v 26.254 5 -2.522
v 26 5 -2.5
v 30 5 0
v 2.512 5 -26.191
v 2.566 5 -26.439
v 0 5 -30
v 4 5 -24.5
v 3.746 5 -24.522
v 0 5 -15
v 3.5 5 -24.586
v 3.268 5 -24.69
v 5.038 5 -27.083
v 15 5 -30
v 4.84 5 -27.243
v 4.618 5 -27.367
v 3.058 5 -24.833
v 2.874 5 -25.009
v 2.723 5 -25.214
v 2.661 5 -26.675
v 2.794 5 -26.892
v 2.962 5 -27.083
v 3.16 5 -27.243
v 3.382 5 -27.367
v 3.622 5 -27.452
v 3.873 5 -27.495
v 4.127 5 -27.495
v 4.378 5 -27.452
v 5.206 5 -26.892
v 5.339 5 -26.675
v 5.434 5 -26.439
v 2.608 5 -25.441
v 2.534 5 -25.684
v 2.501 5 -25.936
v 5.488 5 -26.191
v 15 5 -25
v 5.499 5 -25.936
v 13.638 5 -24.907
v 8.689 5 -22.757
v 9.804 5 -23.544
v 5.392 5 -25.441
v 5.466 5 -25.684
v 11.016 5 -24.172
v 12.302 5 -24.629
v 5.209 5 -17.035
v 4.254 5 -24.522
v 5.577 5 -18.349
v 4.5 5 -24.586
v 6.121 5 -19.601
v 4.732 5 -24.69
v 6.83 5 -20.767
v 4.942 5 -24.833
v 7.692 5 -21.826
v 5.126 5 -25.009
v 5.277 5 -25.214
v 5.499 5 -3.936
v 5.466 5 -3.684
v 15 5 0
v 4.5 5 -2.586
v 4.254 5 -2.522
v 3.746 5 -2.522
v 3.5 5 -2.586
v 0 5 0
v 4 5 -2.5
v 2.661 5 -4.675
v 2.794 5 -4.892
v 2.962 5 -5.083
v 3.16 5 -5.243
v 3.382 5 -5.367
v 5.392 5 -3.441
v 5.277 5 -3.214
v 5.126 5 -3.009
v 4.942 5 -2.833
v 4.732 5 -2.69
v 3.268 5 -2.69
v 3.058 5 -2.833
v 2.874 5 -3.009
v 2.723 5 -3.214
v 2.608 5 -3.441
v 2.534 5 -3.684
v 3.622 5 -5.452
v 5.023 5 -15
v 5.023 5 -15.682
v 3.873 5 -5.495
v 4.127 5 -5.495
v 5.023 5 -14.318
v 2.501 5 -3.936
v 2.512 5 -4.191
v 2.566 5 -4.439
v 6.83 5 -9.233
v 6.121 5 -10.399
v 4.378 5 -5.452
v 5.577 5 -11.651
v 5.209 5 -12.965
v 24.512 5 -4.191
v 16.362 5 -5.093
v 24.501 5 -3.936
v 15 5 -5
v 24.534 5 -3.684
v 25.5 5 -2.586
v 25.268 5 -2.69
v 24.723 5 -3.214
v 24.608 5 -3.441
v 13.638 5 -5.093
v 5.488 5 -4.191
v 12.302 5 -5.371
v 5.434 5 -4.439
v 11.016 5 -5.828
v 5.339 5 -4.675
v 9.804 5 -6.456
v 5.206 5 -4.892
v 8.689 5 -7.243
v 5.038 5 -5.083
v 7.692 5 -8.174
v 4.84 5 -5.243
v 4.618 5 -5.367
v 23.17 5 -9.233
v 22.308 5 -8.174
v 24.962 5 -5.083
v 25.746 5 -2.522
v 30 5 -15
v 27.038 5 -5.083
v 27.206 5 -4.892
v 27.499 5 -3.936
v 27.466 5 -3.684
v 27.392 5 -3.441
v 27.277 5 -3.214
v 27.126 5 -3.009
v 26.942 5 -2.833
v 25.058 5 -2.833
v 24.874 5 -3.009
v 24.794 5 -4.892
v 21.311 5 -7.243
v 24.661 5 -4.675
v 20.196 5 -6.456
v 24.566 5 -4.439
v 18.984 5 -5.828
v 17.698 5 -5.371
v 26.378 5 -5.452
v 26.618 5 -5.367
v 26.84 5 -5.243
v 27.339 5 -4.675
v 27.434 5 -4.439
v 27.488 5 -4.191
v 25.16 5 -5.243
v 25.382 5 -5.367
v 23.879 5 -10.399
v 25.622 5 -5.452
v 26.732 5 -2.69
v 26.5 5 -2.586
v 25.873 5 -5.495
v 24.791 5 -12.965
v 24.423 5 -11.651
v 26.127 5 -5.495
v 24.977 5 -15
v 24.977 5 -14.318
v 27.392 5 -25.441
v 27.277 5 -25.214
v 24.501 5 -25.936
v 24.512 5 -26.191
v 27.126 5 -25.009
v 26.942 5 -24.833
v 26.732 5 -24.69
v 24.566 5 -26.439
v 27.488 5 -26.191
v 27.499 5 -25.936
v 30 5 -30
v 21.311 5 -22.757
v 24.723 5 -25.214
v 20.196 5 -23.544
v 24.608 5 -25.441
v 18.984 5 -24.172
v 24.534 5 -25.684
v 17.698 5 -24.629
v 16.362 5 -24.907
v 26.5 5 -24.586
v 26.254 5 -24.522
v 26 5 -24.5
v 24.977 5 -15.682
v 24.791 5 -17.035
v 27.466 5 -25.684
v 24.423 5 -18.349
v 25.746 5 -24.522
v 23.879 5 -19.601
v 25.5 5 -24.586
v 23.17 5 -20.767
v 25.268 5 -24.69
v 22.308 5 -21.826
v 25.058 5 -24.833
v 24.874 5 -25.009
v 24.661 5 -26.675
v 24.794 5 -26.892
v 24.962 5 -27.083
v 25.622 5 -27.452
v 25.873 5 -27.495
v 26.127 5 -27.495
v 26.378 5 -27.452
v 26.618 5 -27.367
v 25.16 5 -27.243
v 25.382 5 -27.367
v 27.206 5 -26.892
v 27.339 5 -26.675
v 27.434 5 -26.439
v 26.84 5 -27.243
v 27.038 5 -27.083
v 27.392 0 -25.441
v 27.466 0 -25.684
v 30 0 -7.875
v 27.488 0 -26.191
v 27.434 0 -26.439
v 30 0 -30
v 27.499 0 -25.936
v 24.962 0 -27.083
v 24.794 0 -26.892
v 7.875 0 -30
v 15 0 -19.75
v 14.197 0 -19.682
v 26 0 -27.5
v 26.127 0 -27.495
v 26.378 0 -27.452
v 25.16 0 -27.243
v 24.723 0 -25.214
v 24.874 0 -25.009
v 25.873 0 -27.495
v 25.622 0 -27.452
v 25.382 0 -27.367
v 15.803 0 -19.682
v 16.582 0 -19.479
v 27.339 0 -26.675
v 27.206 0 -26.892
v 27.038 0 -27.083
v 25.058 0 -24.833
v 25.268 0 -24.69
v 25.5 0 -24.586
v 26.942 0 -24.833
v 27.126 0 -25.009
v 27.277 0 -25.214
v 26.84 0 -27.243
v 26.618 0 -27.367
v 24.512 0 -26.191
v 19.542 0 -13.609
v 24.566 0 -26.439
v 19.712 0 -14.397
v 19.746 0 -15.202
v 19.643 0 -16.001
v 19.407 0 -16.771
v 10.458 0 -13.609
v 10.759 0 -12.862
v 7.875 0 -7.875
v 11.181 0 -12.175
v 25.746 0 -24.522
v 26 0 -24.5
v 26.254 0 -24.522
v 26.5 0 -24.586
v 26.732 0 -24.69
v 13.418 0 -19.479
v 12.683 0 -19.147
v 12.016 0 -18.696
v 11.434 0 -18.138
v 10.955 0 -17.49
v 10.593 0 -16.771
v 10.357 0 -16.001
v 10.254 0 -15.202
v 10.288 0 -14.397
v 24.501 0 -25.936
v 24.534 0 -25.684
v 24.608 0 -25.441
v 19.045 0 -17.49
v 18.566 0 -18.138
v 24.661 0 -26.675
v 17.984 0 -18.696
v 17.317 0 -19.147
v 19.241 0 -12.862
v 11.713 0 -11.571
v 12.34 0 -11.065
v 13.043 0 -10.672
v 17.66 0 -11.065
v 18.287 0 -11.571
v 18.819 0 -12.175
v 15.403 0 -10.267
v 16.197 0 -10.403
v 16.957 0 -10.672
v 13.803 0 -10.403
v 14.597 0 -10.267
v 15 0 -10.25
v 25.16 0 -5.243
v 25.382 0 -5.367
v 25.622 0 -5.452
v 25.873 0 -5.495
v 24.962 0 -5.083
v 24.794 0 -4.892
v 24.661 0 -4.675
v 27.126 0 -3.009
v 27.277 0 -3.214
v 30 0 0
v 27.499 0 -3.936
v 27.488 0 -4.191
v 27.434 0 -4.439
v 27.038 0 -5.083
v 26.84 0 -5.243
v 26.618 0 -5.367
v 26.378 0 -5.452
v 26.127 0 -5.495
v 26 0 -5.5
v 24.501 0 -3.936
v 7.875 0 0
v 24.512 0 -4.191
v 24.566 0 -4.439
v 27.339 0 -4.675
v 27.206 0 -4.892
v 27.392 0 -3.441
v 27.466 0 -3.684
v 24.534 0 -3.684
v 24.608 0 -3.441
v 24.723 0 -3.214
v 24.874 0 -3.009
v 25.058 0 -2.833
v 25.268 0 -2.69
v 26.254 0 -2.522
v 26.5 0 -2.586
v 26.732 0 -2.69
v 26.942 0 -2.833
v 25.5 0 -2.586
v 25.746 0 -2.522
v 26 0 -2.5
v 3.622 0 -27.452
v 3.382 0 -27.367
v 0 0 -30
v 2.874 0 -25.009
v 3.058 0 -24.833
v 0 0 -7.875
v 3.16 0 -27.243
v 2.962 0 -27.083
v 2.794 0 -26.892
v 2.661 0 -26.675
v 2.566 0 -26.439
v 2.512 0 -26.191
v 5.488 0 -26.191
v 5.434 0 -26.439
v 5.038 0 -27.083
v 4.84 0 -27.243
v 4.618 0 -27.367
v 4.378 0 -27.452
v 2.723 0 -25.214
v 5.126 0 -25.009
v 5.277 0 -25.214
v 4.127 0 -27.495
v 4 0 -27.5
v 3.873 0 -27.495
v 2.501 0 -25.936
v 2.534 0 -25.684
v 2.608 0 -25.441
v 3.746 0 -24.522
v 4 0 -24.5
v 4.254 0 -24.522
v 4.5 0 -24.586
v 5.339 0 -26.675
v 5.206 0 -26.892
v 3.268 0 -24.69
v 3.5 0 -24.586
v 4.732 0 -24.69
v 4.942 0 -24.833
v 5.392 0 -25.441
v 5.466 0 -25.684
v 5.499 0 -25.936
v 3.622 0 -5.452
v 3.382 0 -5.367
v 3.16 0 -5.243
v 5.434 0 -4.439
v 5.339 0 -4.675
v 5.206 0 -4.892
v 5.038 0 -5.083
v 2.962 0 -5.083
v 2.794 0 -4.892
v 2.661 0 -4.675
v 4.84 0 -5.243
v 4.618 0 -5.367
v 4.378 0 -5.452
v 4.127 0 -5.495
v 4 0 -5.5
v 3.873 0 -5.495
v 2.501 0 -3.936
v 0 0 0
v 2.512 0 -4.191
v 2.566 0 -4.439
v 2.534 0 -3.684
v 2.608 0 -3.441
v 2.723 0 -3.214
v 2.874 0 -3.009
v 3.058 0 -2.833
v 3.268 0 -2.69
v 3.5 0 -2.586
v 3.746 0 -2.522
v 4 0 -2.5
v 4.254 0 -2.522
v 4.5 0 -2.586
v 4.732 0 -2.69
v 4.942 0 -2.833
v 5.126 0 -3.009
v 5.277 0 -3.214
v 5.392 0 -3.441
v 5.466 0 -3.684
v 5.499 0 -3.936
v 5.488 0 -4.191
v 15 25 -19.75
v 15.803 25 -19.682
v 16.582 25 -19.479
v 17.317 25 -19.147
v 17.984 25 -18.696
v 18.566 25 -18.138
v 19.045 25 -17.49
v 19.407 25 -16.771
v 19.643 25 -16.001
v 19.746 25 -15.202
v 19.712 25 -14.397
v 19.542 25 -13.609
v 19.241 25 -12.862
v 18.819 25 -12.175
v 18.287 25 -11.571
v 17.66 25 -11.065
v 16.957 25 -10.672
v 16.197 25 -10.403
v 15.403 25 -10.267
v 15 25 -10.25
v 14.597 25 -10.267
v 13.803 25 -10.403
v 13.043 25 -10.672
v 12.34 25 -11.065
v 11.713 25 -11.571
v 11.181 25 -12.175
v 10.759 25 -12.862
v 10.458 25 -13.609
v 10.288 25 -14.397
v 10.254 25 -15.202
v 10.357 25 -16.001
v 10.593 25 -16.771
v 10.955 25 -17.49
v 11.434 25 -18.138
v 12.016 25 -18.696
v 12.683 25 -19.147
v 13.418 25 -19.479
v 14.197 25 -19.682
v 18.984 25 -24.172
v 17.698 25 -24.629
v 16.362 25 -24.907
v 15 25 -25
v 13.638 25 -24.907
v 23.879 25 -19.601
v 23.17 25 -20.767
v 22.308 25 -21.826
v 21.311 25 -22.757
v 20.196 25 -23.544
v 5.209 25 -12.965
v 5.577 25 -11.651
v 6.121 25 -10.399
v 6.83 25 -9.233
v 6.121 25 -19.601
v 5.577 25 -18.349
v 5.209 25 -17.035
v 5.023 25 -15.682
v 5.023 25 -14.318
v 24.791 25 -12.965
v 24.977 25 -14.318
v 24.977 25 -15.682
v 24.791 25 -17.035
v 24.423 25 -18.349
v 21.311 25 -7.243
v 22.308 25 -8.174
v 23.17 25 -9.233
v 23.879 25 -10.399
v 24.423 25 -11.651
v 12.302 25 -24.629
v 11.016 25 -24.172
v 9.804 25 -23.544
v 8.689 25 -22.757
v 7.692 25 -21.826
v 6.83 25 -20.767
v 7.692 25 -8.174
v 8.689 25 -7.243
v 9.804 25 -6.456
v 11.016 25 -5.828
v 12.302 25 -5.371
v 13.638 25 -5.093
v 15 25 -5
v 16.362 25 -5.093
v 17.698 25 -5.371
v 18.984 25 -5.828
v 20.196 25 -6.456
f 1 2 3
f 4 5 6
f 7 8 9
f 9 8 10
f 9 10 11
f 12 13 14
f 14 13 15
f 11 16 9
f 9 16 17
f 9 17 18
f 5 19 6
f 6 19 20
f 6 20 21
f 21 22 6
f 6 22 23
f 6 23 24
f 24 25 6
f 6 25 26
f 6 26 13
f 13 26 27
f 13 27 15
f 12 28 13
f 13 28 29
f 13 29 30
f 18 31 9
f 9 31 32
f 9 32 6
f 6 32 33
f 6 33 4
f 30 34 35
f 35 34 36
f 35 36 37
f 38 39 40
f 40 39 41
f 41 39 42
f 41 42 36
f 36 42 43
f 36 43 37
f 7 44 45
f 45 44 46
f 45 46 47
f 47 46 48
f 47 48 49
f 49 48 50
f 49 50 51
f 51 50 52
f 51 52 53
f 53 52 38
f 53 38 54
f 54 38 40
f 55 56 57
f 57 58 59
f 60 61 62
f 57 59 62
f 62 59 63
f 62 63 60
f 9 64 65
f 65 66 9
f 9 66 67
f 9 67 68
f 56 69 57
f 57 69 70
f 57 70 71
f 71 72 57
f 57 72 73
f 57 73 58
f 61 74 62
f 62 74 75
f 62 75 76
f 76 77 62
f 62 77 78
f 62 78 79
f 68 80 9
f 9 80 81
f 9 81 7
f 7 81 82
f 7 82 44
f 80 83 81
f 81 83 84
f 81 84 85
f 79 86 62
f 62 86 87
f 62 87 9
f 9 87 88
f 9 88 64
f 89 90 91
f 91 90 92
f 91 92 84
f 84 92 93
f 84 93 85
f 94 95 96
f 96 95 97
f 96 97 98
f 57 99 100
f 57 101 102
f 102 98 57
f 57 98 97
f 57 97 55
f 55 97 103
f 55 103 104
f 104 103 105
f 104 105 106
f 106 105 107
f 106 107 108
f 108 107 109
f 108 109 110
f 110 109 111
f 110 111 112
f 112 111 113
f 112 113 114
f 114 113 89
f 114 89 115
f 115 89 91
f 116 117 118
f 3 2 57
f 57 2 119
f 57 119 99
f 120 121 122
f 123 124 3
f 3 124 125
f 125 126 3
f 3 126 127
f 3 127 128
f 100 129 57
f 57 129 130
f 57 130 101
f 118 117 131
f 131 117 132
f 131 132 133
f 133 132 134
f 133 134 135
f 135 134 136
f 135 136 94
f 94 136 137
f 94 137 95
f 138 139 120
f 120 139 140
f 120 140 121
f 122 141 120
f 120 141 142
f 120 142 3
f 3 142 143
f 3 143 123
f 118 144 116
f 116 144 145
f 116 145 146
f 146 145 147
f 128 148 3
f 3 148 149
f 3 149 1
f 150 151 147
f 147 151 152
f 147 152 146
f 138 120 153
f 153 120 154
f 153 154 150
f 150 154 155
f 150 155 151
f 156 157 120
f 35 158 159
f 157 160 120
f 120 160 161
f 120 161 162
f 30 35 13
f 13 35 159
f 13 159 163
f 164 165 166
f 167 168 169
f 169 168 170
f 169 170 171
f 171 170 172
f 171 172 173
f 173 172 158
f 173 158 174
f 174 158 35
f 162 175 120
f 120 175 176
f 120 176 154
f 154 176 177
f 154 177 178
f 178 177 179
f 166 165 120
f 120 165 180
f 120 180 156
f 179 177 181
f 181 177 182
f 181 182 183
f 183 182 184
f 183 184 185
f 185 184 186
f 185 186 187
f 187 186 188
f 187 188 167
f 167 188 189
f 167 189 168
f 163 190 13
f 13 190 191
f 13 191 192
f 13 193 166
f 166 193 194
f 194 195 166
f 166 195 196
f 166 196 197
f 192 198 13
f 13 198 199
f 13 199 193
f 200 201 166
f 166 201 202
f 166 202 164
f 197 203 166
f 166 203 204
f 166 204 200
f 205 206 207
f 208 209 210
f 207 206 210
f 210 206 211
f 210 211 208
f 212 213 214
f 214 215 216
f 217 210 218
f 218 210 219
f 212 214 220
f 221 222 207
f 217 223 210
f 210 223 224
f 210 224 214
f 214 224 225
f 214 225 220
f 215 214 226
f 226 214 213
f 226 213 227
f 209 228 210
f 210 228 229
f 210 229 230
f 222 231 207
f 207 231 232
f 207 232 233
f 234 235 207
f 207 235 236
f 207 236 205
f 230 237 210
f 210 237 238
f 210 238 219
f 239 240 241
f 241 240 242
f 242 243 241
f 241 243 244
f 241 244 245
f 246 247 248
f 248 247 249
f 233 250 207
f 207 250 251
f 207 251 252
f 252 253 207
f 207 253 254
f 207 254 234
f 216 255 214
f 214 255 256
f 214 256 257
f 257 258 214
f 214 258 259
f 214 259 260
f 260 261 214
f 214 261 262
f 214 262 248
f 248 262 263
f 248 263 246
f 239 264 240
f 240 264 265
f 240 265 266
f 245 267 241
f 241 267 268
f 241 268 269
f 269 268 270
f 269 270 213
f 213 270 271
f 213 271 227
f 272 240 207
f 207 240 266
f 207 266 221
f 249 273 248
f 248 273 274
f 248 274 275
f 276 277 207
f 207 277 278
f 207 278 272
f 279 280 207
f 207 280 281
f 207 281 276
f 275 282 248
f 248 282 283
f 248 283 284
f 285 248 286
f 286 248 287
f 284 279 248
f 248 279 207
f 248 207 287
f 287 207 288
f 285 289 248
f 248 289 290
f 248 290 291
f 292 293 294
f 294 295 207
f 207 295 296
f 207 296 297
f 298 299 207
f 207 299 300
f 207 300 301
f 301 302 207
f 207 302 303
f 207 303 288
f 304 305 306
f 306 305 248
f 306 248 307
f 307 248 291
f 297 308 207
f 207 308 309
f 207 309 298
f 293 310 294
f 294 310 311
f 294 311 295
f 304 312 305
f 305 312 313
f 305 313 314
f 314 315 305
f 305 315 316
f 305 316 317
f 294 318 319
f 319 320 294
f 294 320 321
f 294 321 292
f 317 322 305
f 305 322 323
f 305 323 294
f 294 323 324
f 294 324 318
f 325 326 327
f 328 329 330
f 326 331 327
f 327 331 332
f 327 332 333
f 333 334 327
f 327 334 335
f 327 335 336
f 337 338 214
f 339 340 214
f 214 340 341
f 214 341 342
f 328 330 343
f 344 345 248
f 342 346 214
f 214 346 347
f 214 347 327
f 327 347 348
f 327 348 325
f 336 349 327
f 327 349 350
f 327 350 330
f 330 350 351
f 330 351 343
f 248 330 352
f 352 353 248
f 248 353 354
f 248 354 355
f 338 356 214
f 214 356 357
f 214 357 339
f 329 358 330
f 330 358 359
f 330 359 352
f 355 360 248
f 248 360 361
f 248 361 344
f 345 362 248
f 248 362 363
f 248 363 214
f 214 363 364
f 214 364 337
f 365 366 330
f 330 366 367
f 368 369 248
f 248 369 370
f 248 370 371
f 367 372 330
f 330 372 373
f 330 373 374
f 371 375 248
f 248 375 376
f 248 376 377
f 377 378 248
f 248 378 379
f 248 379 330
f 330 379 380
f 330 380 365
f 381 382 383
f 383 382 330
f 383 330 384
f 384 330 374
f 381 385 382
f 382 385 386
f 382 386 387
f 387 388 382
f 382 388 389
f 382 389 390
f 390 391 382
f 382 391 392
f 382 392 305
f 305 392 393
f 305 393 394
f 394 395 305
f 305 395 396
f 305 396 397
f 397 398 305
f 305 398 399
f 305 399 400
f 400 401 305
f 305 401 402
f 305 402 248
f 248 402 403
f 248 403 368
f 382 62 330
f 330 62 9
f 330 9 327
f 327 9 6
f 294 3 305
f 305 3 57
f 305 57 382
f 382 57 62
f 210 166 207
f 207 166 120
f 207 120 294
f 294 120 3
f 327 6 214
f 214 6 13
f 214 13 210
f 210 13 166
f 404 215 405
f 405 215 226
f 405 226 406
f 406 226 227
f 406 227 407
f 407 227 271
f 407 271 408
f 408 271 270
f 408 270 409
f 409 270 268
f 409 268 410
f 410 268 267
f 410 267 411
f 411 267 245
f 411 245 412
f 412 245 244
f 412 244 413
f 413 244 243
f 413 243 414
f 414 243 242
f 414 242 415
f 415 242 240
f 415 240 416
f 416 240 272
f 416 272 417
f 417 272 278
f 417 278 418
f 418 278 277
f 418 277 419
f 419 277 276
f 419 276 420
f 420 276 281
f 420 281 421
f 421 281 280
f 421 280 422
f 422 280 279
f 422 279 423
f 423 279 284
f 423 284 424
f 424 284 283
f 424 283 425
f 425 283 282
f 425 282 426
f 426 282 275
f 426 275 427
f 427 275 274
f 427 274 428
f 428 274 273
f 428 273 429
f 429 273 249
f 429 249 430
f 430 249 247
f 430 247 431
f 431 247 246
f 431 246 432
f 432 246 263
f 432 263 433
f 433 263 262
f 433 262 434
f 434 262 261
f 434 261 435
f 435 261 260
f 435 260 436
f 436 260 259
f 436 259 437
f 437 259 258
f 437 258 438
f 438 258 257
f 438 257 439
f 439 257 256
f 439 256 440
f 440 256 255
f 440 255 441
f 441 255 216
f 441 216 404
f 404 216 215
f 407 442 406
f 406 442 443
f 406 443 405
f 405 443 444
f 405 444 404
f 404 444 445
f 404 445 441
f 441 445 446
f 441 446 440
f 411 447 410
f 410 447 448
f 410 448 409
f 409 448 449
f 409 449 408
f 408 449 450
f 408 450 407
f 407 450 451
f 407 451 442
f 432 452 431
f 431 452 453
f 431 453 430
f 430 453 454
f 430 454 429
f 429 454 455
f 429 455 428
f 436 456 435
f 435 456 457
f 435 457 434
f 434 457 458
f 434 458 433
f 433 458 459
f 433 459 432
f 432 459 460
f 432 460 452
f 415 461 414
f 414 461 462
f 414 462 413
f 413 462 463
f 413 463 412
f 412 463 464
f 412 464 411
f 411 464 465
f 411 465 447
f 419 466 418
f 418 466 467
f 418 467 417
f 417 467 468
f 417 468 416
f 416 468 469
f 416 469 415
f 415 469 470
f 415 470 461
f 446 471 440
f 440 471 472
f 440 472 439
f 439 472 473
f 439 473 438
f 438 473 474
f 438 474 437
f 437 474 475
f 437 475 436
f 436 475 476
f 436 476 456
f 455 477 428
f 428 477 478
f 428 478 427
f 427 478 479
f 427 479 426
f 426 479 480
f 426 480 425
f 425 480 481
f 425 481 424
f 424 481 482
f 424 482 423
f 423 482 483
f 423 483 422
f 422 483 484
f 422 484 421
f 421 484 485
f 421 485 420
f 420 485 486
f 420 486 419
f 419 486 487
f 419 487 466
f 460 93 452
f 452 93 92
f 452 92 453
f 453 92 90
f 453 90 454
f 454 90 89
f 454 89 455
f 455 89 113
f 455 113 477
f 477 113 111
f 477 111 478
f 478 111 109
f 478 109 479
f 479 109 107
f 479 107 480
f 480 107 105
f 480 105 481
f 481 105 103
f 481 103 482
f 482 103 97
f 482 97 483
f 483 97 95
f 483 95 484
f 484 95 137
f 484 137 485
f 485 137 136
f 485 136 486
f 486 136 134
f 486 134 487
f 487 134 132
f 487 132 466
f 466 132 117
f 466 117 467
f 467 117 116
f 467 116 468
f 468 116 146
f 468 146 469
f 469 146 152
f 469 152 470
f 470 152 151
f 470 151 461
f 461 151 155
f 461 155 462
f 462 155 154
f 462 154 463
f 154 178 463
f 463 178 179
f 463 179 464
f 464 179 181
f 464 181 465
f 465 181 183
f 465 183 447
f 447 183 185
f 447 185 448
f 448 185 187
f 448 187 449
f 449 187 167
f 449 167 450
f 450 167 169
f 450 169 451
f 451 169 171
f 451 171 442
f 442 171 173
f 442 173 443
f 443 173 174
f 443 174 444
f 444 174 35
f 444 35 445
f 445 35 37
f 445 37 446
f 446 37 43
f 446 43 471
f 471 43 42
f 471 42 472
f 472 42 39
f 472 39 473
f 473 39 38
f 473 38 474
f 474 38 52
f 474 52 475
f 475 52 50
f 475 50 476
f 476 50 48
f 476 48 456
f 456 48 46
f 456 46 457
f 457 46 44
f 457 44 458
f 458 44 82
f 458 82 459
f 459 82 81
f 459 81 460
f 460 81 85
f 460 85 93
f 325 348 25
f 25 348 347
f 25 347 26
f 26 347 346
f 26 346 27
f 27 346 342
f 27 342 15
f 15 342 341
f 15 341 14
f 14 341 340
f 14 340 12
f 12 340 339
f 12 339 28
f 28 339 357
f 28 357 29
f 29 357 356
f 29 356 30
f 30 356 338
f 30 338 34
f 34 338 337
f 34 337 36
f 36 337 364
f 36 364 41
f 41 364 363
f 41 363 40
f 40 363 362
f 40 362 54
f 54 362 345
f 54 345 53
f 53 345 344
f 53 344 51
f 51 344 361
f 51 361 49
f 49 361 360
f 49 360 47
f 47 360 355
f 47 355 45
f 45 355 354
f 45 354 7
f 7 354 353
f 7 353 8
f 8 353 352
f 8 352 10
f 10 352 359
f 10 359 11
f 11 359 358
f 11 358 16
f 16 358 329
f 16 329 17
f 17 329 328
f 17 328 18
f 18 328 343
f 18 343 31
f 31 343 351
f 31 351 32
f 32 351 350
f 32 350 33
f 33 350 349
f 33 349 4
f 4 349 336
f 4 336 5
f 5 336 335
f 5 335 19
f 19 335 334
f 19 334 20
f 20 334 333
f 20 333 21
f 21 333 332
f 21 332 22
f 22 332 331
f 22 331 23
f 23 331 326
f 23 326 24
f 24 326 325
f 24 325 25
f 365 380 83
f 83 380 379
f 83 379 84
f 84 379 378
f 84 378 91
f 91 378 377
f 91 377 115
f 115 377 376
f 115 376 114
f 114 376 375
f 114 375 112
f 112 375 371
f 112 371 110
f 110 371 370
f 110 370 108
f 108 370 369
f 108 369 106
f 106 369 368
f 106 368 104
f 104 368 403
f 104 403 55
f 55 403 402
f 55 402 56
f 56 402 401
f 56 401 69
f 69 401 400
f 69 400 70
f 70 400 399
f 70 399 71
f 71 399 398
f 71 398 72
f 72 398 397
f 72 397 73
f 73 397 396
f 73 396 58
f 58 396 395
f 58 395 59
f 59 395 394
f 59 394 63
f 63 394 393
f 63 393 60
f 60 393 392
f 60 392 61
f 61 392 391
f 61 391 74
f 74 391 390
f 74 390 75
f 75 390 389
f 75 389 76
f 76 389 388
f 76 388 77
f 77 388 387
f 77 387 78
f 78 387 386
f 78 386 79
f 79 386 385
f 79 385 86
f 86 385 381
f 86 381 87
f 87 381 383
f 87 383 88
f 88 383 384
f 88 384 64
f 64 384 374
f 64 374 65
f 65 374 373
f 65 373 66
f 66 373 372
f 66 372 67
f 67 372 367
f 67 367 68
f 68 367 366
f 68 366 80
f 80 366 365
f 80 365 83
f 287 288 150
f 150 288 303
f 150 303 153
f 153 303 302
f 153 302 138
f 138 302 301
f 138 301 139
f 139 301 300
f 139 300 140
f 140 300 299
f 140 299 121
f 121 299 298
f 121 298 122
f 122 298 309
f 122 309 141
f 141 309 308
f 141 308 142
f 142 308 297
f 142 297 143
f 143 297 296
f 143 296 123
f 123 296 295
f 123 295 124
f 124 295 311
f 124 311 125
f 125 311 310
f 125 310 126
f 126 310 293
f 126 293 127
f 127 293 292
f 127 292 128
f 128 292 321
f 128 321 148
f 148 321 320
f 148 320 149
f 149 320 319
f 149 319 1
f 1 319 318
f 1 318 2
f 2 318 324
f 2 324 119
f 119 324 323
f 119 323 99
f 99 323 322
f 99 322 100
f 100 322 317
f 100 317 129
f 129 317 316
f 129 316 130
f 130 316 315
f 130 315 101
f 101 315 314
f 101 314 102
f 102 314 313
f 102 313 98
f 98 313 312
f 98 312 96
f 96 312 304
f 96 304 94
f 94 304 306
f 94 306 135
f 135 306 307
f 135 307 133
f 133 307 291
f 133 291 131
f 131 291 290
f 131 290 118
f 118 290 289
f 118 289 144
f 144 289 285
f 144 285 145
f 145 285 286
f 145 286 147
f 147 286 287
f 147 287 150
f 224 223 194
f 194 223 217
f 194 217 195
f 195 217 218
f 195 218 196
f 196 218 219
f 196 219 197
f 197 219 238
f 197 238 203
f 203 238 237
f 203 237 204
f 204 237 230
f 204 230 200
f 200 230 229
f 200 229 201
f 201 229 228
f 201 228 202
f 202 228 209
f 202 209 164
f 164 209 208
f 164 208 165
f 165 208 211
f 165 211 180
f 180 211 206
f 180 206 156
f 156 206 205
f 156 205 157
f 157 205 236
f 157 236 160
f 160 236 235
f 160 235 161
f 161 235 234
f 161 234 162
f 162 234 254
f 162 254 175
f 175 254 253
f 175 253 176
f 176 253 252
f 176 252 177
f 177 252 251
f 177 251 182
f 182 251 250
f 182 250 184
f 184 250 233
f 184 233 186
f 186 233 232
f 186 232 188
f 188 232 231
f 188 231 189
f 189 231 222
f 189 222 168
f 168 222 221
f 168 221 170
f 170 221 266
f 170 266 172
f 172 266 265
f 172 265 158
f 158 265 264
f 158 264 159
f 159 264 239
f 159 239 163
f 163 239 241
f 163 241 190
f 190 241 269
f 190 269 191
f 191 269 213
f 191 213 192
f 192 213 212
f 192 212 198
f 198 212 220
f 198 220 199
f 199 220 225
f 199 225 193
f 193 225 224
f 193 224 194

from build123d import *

# Parameters (mm, degrees)
IZIM1_W                     = 30
IZIM1_H                     = 30
IZIM1_R                     = 4.75
Y_KSEKLIK_EKSTR_ZYON1_DEPTH = 5
IZIM2_R                     = 10
IZIM2_R_2                   = 4.75
Y_KSEKLIK_EKSTR_ZYON2_DEPTH = 20
IZIM3_R                     = 1.5
KES_EKSTR_ZYON1_DEPTH       = 7


with BuildPart() as part:
    # Çizim1 → Yükseklik-Ekstrüzyon1 (new body)
    with BuildSketch(Plane(origin=(0, 0, 0), x_dir=(1, 0, 0), z_dir=(0, 1, 0))):
        with Locations((15, 15)):
            Rectangle(IZIM1_W, IZIM1_H)
        with Locations(Location((15, 15, 0), (0, 0, 270))):
            Circle(IZIM1_R, mode=Mode.SUBTRACT)
    extrude(amount=Y_KSEKLIK_EKSTR_ZYON1_DEPTH)

    # Çizim2 → Yükseklik-Ekstrüzyon2 (add)
    with BuildSketch(Plane(origin=(0, 5, 0), x_dir=(1, 0, 0), z_dir=(0, 1, 0))):
        with Locations(Location((15, 15, 0), (0, 0, 90))):
            Circle(IZIM2_R)
        with Locations(Location((15, 15, 0), (0, 0, 270))):
            Circle(IZIM2_R_2, mode=Mode.SUBTRACT)
    extrude(amount=Y_KSEKLIK_EKSTR_ZYON2_DEPTH)

    # Çizim3 → Kes-Ekstrüzyon1 (cut)
    with BuildSketch(Plane(origin=(0, 5, 0), x_dir=(1, 0, 0), z_dir=(0, 1, 0))):
        with Locations(Location((4, 26, 0), (0, 0, 270))):
            Circle(IZIM3_R)
        with Locations(Location((26, 26, 0), (0, 0, 270))):
            Circle(IZIM3_R)
        with Locations(Location((26, 4, 0), (0, 0, 270))):
            Circle(IZIM3_R)
        with Locations(Location((4, 4, 0), (0, 0, 270))):
            Circle(IZIM3_R)
    extrude(amount=-KES_EKSTR_ZYON1_DEPTH, mode=Mode.SUBTRACT)


solid = part.part
